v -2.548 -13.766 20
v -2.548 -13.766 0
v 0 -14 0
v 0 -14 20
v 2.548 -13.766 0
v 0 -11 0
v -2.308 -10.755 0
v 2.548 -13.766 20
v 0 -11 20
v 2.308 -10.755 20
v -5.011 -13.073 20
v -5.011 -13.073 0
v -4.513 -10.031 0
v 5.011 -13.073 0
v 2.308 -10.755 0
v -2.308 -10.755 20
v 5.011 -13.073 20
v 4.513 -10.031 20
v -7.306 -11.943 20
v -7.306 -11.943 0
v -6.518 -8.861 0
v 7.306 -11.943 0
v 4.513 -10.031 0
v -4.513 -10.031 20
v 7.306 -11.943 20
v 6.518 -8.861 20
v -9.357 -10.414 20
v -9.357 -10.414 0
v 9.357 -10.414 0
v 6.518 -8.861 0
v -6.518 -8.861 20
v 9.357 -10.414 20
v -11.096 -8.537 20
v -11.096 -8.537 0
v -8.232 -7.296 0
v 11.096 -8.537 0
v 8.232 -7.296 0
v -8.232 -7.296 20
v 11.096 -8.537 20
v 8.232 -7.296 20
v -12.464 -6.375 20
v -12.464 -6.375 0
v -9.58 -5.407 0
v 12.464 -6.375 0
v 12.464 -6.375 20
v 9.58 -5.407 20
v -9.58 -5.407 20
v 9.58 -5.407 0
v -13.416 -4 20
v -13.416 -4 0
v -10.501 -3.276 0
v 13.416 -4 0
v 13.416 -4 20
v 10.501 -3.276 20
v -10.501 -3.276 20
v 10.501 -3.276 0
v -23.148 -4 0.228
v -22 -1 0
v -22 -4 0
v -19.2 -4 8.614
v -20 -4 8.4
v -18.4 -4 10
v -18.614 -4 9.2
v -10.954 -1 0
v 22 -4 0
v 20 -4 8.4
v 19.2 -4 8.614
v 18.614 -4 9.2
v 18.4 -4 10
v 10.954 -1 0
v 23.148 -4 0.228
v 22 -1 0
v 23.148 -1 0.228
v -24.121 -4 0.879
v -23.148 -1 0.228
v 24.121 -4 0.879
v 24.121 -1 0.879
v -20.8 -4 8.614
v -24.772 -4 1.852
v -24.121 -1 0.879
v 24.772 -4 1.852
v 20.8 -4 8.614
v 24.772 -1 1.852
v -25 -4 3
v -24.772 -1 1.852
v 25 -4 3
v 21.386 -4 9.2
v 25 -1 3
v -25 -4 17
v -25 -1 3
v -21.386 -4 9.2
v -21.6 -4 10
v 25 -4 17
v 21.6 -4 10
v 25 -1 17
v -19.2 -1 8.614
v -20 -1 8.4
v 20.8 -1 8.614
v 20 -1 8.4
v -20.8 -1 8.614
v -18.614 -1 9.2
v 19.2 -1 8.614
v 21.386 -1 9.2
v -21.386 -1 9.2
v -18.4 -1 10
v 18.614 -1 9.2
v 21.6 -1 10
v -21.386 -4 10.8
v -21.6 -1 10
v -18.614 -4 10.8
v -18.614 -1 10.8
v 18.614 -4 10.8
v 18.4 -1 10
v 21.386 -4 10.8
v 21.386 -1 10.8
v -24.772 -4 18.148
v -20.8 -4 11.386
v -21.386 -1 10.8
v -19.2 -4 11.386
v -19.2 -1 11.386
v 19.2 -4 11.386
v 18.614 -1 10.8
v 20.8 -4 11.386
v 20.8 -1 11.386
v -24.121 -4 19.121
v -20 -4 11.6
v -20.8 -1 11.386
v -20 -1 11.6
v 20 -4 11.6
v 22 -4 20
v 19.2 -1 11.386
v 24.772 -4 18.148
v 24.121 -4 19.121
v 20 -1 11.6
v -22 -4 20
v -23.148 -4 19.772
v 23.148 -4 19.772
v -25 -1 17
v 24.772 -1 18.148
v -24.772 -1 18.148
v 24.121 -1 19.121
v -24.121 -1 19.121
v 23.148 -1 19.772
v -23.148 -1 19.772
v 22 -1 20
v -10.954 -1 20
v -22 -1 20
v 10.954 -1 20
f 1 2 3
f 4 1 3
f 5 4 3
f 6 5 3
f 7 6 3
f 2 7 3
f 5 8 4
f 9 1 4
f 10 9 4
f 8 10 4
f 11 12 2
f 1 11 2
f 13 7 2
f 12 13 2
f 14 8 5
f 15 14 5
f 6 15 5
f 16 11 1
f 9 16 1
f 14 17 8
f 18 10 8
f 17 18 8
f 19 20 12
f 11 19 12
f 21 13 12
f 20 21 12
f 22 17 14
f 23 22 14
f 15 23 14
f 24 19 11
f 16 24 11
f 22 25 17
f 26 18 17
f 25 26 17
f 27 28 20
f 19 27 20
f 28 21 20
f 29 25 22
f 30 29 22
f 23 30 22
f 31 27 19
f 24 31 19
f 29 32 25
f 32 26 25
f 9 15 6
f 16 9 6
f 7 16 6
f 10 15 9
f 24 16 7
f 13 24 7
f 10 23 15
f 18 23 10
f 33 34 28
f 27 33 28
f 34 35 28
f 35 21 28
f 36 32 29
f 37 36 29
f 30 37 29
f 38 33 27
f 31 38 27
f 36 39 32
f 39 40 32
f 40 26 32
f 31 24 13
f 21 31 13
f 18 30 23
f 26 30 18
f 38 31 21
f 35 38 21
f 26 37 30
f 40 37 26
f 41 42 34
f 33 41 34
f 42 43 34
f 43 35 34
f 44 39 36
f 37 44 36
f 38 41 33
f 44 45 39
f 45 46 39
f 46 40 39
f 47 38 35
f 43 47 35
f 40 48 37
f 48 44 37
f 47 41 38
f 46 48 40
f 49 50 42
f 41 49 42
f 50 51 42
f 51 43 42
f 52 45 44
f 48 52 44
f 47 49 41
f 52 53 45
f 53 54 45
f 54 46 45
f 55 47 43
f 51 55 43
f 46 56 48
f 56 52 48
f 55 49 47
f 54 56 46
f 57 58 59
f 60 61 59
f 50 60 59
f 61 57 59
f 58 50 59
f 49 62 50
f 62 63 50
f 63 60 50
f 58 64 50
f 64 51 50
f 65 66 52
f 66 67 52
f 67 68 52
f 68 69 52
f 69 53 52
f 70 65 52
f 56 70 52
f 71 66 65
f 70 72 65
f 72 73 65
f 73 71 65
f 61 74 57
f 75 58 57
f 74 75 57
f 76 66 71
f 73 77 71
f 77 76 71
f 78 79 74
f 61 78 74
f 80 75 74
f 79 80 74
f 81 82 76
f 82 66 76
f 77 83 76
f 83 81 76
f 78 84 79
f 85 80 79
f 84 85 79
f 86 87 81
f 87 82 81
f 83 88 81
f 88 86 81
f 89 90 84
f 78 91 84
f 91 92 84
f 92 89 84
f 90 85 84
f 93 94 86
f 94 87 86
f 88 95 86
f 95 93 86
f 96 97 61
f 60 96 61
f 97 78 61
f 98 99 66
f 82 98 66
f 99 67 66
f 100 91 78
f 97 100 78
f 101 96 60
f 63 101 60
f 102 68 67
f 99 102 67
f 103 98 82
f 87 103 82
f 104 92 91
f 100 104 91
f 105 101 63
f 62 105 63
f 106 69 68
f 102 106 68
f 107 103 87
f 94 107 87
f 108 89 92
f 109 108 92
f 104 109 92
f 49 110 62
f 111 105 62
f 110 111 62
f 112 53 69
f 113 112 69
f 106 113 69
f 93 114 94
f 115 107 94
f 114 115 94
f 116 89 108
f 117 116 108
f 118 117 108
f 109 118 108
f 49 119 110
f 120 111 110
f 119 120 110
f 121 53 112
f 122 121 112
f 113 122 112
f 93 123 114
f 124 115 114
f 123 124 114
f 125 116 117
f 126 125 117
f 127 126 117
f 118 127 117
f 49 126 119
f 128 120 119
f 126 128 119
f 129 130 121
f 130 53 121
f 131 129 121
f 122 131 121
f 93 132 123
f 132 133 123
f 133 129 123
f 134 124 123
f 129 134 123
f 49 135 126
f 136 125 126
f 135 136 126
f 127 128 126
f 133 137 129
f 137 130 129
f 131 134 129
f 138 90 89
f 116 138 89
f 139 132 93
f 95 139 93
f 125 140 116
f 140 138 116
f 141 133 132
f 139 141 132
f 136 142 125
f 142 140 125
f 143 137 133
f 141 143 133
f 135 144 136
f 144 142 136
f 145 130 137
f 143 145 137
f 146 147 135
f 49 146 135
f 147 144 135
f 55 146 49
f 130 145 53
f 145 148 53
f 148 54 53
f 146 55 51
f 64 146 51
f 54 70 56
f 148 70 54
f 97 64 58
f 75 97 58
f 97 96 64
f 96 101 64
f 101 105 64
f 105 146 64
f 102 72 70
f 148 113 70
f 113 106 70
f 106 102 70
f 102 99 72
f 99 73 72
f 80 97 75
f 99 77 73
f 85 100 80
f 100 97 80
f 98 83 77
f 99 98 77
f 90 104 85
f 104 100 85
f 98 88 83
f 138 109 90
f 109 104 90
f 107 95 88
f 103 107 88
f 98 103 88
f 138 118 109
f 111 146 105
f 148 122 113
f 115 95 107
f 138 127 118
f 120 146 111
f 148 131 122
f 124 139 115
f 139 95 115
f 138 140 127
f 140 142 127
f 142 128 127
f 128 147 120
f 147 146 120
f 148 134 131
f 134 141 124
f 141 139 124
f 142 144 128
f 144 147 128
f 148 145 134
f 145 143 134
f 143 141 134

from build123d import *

# Parameters (mm, degrees)
BOSS_EXTRUDE1_DEPTH = 20
SKETCH2_R           = 1.6
CUT_EXTRUDE1_DEPTH  = 20
FILLET1_R           = 3


with BuildPart() as part:
    # Sketch1 → Boss-Extrude1 (new body)
    with BuildSketch(Plane.XY):
        with BuildLine():
            Line((-10.95445115, -1), (-13.964240044, -1))
            ThreePointArc((-13.964240044, -1), (-13.772253627, -2.514961237), (-13.416407865, -4))
            ThreePointArc((-13.416407865, -4), (0, -14), (13.416407865, -4))
            ThreePointArc((13.416407865, -4), (13.772253627, -2.514961237), (13.964240044, -1))
            Line((13.964240044, -1), (10.95445115, -1))
            ThreePointArc((10.95445115, -1), (0, -11), (-10.95445115, -1))
        make_face()
        with BuildLine():
            Line((-13.964240044, -1), (-25, -1))
            Line((-25, -1), (-25, -4))
            Line((-25, -4), (-13.416407865, -4))
            ThreePointArc((-13.416407865, -4), (-13.772253627, -2.514961237), (-13.964240044, -1))
        make_face()
        with BuildLine():
            Line((25, -1), (13.964240044, -1))
            ThreePointArc((13.964240044, -1), (13.772253627, -2.514961237), (13.416407865, -4))
            Line((13.416407865, -4), (25, -4))
            Line((25, -4), (25, -1))
        make_face()
    extrude(amount=BOSS_EXTRUDE1_DEPTH)

    # Sketch2 → Cut-Extrude1 (cut)
    with BuildSketch(Plane.XZ.offset(4)):
        with Locations((-20, 10)):
            Circle(SKETCH2_R)
    cut_extrude1 = extrude(amount=-CUT_EXTRUDE1_DEPTH, mode=Mode.SUBTRACT)

    # Mirror1: Cut-Extrude1 across plane
    add(cut_extrude1.mirror(Plane(origin=(0, 0, 0), x_dir=(0, 0, 1), z_dir=(1, 0, 0))), mode=Mode.SUBTRACT)

    # Fillet1
    fillet1_edges = [part.edges().sort_by_distance(p)[0] for p in [
        (-25, -2.5, 0),
        (-25, -2.5, 20),
        (25, -2.5, 20),
        (25, -2.5, 0),
    ]]
    fillet(fillet1_edges, radius=FILLET1_R)


solid = part.part
